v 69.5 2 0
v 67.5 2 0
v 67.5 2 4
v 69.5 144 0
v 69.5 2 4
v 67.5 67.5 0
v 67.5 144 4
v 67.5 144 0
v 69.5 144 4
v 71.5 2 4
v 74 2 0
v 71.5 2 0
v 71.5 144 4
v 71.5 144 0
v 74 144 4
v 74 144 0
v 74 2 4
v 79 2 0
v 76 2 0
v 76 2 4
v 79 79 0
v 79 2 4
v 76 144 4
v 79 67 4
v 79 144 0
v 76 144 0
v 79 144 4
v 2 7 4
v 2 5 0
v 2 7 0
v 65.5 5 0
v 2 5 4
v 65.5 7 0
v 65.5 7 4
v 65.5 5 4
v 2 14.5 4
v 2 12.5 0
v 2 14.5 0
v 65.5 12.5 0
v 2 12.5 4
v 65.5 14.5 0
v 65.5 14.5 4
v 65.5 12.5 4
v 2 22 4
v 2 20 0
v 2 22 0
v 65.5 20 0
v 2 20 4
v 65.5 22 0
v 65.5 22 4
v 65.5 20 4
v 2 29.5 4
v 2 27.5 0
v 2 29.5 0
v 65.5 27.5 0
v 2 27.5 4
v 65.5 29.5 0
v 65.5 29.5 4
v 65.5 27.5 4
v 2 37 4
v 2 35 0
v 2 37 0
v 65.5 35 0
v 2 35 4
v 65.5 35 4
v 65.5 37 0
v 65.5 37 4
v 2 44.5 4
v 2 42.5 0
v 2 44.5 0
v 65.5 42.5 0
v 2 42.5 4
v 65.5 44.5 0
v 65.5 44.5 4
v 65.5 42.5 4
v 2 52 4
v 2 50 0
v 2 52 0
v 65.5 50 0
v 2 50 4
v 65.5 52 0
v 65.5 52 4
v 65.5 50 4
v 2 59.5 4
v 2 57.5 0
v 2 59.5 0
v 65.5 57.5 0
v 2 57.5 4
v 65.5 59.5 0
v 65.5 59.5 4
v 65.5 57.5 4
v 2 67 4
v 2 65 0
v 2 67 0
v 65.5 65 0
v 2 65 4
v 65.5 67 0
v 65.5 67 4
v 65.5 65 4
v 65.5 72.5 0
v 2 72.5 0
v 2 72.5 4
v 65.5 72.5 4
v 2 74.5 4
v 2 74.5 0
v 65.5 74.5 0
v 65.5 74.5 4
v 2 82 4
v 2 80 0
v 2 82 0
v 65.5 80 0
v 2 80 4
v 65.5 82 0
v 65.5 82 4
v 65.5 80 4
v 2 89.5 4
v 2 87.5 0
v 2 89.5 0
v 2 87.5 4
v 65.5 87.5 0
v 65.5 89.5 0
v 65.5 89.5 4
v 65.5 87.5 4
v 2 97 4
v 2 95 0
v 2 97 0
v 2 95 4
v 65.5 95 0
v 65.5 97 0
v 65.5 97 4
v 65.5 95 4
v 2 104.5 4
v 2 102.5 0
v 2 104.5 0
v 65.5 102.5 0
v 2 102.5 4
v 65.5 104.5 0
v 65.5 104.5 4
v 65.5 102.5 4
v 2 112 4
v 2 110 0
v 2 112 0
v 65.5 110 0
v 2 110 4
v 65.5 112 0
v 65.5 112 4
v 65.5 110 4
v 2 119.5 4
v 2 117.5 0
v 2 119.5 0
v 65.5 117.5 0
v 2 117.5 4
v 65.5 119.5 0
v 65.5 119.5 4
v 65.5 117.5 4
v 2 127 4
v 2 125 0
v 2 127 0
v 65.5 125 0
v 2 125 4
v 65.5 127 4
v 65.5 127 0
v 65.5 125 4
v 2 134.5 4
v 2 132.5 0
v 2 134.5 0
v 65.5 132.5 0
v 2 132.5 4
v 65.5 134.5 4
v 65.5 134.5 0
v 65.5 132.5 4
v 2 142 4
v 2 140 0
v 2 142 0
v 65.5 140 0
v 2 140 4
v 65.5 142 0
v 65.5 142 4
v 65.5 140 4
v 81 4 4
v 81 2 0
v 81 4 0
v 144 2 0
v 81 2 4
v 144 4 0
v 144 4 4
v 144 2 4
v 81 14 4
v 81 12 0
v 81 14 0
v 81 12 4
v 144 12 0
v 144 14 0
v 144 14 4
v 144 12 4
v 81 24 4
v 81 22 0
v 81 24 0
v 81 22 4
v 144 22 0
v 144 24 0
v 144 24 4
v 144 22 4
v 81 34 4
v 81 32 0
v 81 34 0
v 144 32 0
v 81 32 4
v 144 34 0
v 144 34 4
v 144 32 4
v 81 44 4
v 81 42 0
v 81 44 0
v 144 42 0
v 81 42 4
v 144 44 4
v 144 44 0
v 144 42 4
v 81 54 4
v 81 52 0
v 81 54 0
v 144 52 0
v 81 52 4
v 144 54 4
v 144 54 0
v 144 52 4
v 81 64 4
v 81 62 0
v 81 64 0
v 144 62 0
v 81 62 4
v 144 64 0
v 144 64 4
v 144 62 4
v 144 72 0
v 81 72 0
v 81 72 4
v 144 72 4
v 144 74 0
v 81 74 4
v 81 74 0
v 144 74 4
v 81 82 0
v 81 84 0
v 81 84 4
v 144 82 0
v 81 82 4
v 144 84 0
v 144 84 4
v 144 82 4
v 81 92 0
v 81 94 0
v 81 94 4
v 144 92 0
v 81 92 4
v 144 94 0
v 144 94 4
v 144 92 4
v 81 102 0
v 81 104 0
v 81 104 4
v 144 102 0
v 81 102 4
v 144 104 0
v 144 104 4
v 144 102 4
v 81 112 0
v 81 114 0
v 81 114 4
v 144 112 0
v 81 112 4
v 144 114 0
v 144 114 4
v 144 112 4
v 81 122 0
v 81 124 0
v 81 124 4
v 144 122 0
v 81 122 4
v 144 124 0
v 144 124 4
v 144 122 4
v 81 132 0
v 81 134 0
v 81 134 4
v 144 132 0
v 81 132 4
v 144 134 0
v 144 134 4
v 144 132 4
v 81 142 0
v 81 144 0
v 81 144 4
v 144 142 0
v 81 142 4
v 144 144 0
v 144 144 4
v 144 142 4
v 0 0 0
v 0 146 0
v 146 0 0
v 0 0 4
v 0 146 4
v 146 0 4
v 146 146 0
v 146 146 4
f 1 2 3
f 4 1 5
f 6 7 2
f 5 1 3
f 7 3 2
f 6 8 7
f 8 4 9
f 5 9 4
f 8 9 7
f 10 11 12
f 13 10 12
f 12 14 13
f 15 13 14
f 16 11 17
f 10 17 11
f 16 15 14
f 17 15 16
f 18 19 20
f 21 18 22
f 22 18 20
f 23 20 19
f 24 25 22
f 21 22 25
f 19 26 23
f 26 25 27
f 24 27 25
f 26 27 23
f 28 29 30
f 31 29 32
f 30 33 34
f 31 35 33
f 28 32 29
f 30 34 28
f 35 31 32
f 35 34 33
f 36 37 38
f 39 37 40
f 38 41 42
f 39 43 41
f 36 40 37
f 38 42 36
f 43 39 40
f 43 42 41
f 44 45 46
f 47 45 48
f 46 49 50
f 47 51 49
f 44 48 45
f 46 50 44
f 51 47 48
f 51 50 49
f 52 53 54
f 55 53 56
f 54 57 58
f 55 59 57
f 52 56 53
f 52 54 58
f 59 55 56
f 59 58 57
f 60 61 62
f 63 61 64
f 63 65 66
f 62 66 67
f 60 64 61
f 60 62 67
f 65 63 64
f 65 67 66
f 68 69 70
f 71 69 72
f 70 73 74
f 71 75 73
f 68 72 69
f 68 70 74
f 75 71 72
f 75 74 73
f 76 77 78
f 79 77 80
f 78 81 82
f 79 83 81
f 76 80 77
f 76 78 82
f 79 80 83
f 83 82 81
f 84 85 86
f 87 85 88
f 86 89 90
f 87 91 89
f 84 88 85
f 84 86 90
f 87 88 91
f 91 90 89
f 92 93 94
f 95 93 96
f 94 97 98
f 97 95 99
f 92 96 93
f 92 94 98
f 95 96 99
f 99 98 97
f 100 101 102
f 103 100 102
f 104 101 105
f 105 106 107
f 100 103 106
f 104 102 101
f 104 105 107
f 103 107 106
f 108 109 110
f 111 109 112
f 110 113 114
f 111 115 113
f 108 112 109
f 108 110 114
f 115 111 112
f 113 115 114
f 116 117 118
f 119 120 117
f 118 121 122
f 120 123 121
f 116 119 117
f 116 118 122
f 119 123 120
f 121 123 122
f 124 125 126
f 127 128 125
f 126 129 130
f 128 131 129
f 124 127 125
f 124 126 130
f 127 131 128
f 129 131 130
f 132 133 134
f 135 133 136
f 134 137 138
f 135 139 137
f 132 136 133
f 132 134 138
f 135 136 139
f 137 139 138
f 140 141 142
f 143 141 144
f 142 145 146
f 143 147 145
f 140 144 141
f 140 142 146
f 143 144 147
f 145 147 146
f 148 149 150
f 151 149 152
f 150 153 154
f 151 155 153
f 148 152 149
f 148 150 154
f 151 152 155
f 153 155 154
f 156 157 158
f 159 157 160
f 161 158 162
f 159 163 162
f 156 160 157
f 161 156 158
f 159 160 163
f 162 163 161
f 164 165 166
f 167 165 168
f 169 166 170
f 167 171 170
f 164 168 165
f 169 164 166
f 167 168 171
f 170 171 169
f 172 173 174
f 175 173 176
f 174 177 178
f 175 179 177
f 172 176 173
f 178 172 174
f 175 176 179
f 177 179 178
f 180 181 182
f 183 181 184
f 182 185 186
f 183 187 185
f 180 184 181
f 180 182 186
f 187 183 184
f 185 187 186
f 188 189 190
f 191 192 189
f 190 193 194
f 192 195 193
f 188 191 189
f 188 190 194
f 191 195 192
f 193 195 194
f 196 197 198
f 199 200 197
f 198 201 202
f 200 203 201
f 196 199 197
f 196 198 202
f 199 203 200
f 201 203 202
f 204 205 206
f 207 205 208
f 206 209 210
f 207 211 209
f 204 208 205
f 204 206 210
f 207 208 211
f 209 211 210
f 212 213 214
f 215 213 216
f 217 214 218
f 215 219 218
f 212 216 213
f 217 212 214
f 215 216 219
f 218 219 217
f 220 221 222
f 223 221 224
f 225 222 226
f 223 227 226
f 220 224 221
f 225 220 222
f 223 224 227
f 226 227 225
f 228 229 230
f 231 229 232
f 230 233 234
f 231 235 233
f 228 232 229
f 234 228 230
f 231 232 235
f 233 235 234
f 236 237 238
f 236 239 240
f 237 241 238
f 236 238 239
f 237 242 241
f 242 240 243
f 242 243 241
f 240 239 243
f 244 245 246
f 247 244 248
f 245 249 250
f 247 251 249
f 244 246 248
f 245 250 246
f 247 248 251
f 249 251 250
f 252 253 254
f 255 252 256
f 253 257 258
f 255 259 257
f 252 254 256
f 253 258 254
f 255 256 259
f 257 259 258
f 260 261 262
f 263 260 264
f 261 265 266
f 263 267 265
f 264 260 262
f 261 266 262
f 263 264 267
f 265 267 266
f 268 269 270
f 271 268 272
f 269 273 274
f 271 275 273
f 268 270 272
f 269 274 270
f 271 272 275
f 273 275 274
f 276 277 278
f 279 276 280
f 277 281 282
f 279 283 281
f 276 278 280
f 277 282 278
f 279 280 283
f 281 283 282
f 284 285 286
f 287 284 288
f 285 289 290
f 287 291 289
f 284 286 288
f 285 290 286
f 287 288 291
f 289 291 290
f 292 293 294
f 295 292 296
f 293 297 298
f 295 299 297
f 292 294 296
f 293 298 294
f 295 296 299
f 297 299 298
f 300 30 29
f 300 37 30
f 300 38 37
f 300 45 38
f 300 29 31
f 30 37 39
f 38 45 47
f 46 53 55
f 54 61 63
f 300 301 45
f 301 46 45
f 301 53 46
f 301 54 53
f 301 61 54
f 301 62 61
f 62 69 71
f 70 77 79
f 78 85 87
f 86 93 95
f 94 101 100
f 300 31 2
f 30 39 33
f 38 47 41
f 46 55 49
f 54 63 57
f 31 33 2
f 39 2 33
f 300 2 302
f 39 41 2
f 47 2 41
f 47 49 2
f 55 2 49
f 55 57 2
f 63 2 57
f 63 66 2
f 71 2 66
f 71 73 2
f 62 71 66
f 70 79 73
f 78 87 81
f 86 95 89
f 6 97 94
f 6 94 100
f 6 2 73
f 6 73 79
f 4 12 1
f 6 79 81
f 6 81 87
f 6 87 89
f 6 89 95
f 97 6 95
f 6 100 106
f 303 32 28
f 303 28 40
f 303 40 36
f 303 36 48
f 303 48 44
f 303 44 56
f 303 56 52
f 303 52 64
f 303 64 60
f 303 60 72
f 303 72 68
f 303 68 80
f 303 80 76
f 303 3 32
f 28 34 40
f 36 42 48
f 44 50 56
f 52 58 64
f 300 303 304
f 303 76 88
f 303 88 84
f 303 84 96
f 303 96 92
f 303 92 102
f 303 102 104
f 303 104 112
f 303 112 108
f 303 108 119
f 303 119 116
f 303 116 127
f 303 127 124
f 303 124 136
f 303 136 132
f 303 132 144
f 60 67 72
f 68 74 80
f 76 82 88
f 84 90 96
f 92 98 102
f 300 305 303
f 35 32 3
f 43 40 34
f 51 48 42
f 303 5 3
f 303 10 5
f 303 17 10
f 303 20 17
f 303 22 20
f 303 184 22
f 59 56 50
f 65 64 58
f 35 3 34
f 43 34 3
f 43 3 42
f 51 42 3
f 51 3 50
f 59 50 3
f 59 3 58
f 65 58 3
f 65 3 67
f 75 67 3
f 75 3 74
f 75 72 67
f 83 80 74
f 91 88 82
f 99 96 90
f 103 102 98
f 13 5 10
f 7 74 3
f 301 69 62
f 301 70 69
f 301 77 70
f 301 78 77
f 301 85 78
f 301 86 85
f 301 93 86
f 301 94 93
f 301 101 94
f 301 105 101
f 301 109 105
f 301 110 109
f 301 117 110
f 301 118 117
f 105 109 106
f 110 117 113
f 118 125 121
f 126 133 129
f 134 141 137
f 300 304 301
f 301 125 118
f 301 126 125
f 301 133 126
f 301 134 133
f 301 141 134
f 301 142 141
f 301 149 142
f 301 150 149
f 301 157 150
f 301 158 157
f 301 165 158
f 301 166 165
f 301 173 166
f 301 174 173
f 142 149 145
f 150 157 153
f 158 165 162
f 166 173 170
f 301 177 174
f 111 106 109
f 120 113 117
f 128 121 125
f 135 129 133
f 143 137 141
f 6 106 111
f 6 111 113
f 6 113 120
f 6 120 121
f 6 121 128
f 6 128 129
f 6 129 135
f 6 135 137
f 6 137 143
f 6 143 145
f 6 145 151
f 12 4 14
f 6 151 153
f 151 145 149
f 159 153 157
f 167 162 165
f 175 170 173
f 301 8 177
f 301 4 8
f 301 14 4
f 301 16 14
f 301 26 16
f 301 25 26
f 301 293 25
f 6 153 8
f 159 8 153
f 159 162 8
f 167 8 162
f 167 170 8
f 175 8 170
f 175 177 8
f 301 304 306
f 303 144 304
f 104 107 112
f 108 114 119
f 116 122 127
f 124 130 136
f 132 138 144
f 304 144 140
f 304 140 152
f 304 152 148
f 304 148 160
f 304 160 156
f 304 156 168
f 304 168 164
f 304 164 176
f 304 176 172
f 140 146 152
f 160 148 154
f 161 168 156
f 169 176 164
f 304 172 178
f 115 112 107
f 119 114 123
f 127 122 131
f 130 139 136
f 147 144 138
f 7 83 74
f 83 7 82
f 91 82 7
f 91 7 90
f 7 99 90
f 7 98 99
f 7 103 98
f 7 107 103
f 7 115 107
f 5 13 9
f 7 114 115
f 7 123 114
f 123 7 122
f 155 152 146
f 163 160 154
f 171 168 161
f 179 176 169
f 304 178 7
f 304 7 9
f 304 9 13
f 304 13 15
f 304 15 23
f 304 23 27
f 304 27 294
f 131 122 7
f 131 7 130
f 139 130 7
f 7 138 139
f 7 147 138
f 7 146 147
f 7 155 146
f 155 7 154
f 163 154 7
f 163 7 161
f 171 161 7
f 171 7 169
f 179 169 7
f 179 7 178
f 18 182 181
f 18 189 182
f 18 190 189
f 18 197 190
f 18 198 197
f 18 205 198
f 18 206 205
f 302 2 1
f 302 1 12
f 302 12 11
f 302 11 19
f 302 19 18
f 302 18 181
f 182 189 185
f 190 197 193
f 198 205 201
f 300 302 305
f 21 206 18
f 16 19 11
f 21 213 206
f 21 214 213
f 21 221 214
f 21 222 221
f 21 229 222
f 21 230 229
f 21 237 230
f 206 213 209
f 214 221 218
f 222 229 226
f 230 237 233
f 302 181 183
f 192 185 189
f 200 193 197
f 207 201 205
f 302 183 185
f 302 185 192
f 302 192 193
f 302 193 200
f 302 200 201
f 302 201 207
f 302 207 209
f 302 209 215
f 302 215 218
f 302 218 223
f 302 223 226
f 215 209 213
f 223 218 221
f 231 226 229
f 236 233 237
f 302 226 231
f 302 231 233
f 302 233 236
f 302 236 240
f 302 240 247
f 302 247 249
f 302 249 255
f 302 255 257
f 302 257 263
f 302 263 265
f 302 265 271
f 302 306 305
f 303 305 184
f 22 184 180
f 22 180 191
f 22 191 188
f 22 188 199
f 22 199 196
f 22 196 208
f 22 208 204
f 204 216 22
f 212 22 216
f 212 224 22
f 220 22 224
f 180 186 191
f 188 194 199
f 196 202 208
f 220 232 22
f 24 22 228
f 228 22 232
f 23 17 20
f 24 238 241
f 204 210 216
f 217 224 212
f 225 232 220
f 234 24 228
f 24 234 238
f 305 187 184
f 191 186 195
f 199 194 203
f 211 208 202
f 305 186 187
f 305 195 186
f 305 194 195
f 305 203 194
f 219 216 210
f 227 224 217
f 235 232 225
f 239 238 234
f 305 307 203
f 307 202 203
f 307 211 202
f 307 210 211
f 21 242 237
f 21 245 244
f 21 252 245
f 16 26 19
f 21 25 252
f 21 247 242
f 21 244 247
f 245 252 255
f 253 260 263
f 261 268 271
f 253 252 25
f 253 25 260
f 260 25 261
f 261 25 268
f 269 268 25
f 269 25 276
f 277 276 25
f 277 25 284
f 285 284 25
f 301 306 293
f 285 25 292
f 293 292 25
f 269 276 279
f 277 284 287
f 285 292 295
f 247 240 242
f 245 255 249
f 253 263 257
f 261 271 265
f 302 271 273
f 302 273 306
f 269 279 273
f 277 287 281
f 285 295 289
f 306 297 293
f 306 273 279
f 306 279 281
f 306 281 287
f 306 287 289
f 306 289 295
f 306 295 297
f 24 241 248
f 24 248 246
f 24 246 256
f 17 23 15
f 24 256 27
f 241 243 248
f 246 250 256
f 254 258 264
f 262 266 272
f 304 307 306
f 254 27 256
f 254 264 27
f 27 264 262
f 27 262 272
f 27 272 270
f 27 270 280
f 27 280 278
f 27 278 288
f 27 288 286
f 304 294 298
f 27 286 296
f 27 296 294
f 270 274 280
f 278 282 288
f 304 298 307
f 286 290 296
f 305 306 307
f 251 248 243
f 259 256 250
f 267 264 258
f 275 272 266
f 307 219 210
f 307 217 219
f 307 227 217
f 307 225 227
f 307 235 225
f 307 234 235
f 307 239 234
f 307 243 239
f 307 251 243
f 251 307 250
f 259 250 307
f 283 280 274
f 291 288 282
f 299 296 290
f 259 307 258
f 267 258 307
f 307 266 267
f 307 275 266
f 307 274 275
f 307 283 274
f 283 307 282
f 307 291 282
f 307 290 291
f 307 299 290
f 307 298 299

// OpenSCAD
hull() {
    cube([2.5, 200, 6]);

    translate([0,110,40]) rotate([0,90,0]) cylinder(d=40, h=1);
}

!difference() {
    cube([146,146,4]);
    
    translate([66.5,0,0]){
        translate([1,2,0]) cube([2.0, 142, 6]);
        translate([5,2,0]) cube([2.5, 142, 6]);
        translate([9.5,2,0]) cube([3, 142, 6]);
    }
    
    translate([2,5,0]) {
        for(i=[0:18]) {
            translate([0,7.5*i,0]) cube([63.5, 2.0, 6]);
        }
    }
    
    translate([146-1-64,2,0]) {
        for(i=[0:20]) {
            translate([0,10*i,0]) cube([63, 2.0, 6]);
        }
    }
   
}
